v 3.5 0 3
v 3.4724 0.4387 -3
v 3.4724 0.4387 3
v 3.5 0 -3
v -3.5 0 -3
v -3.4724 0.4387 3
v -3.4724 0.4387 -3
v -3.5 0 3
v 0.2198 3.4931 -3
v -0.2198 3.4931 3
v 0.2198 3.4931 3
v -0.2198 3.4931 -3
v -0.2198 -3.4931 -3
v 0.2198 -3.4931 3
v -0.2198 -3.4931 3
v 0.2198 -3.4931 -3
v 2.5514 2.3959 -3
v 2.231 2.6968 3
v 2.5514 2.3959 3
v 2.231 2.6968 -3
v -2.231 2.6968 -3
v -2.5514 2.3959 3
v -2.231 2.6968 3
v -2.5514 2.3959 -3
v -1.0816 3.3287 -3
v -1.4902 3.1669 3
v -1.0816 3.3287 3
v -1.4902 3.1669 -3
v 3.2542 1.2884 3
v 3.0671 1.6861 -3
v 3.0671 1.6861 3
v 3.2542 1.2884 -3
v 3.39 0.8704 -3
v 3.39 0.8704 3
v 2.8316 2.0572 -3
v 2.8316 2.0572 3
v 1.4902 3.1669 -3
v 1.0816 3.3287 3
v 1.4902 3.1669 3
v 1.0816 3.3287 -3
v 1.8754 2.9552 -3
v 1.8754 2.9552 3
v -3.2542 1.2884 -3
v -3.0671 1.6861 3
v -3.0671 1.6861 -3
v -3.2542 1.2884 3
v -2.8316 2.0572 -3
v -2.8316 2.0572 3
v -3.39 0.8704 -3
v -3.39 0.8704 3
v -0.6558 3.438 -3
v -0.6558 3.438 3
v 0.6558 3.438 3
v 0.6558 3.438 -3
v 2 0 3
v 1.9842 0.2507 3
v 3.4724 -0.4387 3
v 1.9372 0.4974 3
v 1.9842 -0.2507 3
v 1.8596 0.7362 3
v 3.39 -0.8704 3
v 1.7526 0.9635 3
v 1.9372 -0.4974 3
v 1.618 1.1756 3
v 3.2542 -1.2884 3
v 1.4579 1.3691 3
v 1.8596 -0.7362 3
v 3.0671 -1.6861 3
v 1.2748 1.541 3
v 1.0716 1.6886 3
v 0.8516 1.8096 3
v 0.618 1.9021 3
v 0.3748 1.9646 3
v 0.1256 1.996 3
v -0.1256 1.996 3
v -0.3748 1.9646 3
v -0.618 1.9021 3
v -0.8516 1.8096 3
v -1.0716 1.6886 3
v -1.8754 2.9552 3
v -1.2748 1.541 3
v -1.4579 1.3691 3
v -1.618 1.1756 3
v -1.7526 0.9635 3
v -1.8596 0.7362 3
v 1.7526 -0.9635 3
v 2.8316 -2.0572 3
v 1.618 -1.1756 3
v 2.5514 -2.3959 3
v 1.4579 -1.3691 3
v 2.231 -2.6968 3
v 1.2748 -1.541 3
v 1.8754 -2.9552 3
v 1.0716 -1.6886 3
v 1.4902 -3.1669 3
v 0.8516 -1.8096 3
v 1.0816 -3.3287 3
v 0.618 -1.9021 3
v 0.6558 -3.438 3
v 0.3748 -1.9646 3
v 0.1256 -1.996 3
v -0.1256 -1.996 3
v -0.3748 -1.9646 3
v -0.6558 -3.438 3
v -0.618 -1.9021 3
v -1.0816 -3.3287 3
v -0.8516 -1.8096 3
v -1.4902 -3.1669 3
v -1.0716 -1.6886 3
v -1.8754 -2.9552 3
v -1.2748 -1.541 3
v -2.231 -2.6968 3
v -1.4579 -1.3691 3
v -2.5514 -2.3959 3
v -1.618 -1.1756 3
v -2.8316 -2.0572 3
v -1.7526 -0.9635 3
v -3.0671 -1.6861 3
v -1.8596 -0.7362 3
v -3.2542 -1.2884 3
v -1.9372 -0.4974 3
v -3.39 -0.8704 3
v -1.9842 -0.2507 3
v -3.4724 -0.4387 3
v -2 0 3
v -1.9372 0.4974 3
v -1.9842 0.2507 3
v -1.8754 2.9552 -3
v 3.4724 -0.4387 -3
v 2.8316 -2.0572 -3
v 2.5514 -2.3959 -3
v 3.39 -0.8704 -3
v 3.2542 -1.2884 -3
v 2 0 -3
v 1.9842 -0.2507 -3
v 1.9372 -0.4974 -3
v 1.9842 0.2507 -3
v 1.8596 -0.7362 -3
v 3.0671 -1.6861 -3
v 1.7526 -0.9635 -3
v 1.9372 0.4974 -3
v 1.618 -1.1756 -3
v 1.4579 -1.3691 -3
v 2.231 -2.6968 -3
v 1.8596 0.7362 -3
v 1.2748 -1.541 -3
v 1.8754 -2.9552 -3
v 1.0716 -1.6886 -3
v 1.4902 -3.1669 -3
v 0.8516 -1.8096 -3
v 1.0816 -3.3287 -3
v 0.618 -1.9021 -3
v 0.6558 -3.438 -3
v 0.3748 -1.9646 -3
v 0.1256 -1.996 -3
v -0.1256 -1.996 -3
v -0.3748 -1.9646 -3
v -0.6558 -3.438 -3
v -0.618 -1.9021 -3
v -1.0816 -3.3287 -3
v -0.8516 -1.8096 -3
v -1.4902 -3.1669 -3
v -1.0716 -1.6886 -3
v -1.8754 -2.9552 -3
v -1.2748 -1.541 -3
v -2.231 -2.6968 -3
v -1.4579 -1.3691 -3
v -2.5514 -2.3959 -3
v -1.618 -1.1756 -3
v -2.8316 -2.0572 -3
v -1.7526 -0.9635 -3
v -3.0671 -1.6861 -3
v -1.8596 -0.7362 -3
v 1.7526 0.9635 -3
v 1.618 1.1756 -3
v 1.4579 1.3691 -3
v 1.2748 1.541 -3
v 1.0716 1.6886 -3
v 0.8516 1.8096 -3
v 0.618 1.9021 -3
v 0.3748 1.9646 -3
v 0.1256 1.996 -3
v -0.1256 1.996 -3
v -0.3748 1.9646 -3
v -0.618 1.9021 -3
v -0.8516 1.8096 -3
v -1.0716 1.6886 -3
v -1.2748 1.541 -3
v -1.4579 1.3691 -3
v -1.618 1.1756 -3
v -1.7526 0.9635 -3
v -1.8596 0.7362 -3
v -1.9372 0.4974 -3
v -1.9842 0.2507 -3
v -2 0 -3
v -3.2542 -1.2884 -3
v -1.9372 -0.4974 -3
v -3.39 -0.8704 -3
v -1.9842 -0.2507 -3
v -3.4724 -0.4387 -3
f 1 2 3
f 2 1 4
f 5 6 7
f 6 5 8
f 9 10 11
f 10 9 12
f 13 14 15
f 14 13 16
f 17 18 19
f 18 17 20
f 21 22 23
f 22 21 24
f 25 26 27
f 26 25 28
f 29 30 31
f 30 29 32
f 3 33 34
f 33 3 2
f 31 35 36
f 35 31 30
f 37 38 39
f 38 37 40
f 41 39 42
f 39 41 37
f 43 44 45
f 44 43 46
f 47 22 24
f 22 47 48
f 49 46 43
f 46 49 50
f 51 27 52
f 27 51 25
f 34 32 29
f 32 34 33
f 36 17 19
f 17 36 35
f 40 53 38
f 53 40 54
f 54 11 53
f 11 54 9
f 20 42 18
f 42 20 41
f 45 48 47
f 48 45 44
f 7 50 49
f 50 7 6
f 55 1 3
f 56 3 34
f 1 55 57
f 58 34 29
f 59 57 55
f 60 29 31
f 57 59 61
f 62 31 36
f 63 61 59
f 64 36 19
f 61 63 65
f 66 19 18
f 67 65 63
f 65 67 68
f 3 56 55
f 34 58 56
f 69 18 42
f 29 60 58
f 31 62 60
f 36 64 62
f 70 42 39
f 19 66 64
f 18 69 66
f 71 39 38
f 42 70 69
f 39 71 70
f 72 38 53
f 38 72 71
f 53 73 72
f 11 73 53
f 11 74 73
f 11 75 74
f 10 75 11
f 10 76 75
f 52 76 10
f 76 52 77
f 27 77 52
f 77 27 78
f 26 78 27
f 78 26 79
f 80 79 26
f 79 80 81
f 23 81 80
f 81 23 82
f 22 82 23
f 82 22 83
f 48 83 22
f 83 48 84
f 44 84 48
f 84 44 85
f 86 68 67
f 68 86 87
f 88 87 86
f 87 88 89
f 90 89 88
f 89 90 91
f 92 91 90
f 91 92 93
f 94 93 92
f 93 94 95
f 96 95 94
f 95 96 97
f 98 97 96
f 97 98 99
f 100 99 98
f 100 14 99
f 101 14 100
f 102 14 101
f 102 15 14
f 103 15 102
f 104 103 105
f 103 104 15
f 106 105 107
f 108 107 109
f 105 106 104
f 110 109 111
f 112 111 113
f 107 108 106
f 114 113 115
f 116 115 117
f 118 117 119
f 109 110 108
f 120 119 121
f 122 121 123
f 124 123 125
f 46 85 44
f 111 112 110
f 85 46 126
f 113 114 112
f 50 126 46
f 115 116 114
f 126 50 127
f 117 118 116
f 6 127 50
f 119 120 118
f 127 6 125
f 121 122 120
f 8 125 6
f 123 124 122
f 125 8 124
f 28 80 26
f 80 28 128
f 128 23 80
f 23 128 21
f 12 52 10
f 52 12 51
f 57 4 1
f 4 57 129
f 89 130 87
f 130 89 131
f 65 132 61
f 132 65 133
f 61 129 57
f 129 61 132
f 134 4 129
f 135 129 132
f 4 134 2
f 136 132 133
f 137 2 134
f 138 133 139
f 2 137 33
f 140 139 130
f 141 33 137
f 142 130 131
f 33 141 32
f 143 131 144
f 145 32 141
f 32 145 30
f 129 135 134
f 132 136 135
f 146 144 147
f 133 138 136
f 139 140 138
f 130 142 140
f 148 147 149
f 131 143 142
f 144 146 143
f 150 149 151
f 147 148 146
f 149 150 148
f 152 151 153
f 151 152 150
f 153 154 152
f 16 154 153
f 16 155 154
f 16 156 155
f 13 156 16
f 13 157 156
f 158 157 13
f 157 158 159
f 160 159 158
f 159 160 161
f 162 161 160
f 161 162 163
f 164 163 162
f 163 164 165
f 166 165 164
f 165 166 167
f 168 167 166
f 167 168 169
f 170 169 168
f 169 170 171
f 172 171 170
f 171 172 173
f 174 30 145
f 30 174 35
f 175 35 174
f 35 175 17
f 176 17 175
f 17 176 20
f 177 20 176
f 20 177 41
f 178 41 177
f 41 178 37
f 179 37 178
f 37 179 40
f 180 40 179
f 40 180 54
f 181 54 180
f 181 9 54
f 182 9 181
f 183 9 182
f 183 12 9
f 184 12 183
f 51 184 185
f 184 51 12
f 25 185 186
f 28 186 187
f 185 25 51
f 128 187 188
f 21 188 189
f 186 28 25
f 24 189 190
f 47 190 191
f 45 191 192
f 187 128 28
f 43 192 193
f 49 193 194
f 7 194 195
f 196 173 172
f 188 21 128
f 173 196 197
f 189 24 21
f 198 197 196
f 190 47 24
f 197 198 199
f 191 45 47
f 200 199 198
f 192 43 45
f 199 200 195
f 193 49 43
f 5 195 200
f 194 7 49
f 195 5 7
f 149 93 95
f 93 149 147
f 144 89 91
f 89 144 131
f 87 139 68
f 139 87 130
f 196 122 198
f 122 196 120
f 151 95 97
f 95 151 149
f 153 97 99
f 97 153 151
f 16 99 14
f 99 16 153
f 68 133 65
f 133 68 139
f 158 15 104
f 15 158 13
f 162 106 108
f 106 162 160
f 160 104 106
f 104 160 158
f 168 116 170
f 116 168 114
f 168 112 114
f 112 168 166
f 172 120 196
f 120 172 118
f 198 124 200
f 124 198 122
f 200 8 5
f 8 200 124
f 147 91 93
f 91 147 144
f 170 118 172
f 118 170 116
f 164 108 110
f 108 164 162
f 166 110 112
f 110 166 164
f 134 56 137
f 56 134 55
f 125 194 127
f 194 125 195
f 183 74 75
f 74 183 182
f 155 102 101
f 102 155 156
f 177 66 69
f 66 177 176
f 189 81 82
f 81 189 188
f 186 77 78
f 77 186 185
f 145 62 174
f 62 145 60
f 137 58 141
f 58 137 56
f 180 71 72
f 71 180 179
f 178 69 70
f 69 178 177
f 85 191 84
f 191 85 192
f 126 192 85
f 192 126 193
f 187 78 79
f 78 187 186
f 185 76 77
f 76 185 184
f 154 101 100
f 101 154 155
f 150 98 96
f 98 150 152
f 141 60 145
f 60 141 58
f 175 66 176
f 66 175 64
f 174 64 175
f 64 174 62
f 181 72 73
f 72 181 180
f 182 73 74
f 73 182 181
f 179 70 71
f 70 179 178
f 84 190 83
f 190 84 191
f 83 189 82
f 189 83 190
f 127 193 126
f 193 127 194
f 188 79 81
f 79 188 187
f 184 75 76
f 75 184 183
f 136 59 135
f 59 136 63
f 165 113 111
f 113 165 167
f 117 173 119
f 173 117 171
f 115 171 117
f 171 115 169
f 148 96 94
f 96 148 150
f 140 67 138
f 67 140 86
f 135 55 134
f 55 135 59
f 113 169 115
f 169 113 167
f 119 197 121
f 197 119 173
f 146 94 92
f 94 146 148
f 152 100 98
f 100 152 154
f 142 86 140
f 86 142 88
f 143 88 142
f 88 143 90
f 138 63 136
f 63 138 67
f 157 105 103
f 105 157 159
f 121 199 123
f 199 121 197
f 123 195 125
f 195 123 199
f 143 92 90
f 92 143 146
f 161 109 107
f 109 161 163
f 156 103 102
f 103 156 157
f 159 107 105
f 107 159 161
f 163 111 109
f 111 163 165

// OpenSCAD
$fn = 50;


difference() {
	union() {
		translate(v = [0, 0, -3.0000000000]) {
			cylinder(h = 6, r = 3.5000000000);
		}
	}
	union() {
		translate(v = [0, 0, -100.0000000000]) {
			cylinder(h = 200, r = 2);
		}
	}
}
